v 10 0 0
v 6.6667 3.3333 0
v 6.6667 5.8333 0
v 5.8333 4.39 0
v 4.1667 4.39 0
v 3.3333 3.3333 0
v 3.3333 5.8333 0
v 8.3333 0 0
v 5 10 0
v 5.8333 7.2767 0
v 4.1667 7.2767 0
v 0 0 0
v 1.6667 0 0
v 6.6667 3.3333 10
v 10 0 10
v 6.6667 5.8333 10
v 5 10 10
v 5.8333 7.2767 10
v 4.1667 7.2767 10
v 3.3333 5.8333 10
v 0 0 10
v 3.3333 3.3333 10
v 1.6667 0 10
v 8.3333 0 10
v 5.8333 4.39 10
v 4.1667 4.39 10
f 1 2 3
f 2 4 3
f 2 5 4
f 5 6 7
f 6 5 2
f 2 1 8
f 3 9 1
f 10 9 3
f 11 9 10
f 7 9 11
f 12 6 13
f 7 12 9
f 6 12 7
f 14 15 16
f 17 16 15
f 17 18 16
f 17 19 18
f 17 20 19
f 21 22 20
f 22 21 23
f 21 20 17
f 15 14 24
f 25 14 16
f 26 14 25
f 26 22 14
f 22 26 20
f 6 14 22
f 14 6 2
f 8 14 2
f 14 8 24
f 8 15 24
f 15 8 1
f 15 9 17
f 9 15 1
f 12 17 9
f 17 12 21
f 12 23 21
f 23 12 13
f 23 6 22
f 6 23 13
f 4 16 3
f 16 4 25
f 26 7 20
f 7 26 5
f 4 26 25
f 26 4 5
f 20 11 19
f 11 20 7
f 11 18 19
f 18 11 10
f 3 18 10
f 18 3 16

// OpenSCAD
// Generated by SolidPython 1.1.3 on 2025-02-16 22:46:41


difference() {
	linear_extrude(height = 10) {
		polygon(points = [[0, 0], [5.0000000000, 10], [10, 0], [8.3333333333, 0], [6.6666666667, 3.3333333333], [3.3333333333, 3.3333333333], [1.6666666667, 0]]);
	}
	linear_extrude(height = 10) {
		translate(v = [5.0000000000, 5.8333333333]) {
			circle(r = 1.6666666667);
		}
	}
}
/***********************************************
*********      SolidPython code:      **********
************************************************
 
from solid import *
from solid.utils import *
import subprocess

def letter_A(h):
    shape_points = [(0,0), (h/2, h), (h, 0), (5/6*h, 0), (2/3*h, 1/3*h), (1/3*h, 1/3*h), (h/6, 0)]
    shape = polygon(shape_points)
    solid_A = linear_extrude(height=h)(shape)
    
    # hole_points = [(h/2, 2/3*h), (5/12*h, h/2), (7/12*h, h/2)]
    # hole = polygon(hole_points)
    # solid_hole = linear_extrude(height=h)(hole)
    hole = circle(r=h/6)
    positioned_hole = translate([h/2, 7/12*h])(hole)
    solid_hole = linear_extrude(height=h)(positioned_hole)
    
    solid_with_hole = difference()(solid_A, solid_hole)
    return solid_with_hole

def letter_B(h):
    pass

def letter_3d(letter, size, font):
    letter_2d = text(text=letter, size=size, font=font)

    letter_3d = linear_extrude(height=size)(letter_2d)

    return letter_3d

def intersection_3d(letter1, letter2, size, font):
    letter1_3d = letter_3d(letter1, size, font)
    letter2_3d = letter_3d(letter2, size, font)

    letter2_3d = rotate(a=90, v=[1,0,0])(letter2_3d)

    intersect = intersection()(letter1_3d, letter2_3d)

    return intersect



if __name__ == "__main__":
    # shapeA = letter_3d("A", 10, "Ariel")
    # scad_render_to_file(shapeA, 'A.scad')

    # shapeB = letter_3d("B", 10, "Ariel")
    # shapeB = rotate(a=90, v=[1,0,0])(shapeB)

    # final = intersection()(shapeA, shapeB)

    
    # scad_render_to_file(final, "final.scad")

    # # subprocess.run(["C:\\Program Files\\OpenSCAD\\openscad.exe", "-o", "A.stl", "A.scad"])
    # # subprocess.run(["C:\\Program Files\\OpenSCAD\\openscad.exe", "-o", "B.stl", "B.scad"])

    # subprocess.run(["C:\\Program Files\\OpenSCAD\\openscad.exe", "-o", "final.stl", "final.scad"])

    a = letter_A(10)
    scad_render_to_file(a, "customA.scad")
    subprocess.run(["C:\\Program Files\\OpenSCAD\\openscad.exe", "-o", "customA.stl", "customA.scad"])

 
 
************************************************/
